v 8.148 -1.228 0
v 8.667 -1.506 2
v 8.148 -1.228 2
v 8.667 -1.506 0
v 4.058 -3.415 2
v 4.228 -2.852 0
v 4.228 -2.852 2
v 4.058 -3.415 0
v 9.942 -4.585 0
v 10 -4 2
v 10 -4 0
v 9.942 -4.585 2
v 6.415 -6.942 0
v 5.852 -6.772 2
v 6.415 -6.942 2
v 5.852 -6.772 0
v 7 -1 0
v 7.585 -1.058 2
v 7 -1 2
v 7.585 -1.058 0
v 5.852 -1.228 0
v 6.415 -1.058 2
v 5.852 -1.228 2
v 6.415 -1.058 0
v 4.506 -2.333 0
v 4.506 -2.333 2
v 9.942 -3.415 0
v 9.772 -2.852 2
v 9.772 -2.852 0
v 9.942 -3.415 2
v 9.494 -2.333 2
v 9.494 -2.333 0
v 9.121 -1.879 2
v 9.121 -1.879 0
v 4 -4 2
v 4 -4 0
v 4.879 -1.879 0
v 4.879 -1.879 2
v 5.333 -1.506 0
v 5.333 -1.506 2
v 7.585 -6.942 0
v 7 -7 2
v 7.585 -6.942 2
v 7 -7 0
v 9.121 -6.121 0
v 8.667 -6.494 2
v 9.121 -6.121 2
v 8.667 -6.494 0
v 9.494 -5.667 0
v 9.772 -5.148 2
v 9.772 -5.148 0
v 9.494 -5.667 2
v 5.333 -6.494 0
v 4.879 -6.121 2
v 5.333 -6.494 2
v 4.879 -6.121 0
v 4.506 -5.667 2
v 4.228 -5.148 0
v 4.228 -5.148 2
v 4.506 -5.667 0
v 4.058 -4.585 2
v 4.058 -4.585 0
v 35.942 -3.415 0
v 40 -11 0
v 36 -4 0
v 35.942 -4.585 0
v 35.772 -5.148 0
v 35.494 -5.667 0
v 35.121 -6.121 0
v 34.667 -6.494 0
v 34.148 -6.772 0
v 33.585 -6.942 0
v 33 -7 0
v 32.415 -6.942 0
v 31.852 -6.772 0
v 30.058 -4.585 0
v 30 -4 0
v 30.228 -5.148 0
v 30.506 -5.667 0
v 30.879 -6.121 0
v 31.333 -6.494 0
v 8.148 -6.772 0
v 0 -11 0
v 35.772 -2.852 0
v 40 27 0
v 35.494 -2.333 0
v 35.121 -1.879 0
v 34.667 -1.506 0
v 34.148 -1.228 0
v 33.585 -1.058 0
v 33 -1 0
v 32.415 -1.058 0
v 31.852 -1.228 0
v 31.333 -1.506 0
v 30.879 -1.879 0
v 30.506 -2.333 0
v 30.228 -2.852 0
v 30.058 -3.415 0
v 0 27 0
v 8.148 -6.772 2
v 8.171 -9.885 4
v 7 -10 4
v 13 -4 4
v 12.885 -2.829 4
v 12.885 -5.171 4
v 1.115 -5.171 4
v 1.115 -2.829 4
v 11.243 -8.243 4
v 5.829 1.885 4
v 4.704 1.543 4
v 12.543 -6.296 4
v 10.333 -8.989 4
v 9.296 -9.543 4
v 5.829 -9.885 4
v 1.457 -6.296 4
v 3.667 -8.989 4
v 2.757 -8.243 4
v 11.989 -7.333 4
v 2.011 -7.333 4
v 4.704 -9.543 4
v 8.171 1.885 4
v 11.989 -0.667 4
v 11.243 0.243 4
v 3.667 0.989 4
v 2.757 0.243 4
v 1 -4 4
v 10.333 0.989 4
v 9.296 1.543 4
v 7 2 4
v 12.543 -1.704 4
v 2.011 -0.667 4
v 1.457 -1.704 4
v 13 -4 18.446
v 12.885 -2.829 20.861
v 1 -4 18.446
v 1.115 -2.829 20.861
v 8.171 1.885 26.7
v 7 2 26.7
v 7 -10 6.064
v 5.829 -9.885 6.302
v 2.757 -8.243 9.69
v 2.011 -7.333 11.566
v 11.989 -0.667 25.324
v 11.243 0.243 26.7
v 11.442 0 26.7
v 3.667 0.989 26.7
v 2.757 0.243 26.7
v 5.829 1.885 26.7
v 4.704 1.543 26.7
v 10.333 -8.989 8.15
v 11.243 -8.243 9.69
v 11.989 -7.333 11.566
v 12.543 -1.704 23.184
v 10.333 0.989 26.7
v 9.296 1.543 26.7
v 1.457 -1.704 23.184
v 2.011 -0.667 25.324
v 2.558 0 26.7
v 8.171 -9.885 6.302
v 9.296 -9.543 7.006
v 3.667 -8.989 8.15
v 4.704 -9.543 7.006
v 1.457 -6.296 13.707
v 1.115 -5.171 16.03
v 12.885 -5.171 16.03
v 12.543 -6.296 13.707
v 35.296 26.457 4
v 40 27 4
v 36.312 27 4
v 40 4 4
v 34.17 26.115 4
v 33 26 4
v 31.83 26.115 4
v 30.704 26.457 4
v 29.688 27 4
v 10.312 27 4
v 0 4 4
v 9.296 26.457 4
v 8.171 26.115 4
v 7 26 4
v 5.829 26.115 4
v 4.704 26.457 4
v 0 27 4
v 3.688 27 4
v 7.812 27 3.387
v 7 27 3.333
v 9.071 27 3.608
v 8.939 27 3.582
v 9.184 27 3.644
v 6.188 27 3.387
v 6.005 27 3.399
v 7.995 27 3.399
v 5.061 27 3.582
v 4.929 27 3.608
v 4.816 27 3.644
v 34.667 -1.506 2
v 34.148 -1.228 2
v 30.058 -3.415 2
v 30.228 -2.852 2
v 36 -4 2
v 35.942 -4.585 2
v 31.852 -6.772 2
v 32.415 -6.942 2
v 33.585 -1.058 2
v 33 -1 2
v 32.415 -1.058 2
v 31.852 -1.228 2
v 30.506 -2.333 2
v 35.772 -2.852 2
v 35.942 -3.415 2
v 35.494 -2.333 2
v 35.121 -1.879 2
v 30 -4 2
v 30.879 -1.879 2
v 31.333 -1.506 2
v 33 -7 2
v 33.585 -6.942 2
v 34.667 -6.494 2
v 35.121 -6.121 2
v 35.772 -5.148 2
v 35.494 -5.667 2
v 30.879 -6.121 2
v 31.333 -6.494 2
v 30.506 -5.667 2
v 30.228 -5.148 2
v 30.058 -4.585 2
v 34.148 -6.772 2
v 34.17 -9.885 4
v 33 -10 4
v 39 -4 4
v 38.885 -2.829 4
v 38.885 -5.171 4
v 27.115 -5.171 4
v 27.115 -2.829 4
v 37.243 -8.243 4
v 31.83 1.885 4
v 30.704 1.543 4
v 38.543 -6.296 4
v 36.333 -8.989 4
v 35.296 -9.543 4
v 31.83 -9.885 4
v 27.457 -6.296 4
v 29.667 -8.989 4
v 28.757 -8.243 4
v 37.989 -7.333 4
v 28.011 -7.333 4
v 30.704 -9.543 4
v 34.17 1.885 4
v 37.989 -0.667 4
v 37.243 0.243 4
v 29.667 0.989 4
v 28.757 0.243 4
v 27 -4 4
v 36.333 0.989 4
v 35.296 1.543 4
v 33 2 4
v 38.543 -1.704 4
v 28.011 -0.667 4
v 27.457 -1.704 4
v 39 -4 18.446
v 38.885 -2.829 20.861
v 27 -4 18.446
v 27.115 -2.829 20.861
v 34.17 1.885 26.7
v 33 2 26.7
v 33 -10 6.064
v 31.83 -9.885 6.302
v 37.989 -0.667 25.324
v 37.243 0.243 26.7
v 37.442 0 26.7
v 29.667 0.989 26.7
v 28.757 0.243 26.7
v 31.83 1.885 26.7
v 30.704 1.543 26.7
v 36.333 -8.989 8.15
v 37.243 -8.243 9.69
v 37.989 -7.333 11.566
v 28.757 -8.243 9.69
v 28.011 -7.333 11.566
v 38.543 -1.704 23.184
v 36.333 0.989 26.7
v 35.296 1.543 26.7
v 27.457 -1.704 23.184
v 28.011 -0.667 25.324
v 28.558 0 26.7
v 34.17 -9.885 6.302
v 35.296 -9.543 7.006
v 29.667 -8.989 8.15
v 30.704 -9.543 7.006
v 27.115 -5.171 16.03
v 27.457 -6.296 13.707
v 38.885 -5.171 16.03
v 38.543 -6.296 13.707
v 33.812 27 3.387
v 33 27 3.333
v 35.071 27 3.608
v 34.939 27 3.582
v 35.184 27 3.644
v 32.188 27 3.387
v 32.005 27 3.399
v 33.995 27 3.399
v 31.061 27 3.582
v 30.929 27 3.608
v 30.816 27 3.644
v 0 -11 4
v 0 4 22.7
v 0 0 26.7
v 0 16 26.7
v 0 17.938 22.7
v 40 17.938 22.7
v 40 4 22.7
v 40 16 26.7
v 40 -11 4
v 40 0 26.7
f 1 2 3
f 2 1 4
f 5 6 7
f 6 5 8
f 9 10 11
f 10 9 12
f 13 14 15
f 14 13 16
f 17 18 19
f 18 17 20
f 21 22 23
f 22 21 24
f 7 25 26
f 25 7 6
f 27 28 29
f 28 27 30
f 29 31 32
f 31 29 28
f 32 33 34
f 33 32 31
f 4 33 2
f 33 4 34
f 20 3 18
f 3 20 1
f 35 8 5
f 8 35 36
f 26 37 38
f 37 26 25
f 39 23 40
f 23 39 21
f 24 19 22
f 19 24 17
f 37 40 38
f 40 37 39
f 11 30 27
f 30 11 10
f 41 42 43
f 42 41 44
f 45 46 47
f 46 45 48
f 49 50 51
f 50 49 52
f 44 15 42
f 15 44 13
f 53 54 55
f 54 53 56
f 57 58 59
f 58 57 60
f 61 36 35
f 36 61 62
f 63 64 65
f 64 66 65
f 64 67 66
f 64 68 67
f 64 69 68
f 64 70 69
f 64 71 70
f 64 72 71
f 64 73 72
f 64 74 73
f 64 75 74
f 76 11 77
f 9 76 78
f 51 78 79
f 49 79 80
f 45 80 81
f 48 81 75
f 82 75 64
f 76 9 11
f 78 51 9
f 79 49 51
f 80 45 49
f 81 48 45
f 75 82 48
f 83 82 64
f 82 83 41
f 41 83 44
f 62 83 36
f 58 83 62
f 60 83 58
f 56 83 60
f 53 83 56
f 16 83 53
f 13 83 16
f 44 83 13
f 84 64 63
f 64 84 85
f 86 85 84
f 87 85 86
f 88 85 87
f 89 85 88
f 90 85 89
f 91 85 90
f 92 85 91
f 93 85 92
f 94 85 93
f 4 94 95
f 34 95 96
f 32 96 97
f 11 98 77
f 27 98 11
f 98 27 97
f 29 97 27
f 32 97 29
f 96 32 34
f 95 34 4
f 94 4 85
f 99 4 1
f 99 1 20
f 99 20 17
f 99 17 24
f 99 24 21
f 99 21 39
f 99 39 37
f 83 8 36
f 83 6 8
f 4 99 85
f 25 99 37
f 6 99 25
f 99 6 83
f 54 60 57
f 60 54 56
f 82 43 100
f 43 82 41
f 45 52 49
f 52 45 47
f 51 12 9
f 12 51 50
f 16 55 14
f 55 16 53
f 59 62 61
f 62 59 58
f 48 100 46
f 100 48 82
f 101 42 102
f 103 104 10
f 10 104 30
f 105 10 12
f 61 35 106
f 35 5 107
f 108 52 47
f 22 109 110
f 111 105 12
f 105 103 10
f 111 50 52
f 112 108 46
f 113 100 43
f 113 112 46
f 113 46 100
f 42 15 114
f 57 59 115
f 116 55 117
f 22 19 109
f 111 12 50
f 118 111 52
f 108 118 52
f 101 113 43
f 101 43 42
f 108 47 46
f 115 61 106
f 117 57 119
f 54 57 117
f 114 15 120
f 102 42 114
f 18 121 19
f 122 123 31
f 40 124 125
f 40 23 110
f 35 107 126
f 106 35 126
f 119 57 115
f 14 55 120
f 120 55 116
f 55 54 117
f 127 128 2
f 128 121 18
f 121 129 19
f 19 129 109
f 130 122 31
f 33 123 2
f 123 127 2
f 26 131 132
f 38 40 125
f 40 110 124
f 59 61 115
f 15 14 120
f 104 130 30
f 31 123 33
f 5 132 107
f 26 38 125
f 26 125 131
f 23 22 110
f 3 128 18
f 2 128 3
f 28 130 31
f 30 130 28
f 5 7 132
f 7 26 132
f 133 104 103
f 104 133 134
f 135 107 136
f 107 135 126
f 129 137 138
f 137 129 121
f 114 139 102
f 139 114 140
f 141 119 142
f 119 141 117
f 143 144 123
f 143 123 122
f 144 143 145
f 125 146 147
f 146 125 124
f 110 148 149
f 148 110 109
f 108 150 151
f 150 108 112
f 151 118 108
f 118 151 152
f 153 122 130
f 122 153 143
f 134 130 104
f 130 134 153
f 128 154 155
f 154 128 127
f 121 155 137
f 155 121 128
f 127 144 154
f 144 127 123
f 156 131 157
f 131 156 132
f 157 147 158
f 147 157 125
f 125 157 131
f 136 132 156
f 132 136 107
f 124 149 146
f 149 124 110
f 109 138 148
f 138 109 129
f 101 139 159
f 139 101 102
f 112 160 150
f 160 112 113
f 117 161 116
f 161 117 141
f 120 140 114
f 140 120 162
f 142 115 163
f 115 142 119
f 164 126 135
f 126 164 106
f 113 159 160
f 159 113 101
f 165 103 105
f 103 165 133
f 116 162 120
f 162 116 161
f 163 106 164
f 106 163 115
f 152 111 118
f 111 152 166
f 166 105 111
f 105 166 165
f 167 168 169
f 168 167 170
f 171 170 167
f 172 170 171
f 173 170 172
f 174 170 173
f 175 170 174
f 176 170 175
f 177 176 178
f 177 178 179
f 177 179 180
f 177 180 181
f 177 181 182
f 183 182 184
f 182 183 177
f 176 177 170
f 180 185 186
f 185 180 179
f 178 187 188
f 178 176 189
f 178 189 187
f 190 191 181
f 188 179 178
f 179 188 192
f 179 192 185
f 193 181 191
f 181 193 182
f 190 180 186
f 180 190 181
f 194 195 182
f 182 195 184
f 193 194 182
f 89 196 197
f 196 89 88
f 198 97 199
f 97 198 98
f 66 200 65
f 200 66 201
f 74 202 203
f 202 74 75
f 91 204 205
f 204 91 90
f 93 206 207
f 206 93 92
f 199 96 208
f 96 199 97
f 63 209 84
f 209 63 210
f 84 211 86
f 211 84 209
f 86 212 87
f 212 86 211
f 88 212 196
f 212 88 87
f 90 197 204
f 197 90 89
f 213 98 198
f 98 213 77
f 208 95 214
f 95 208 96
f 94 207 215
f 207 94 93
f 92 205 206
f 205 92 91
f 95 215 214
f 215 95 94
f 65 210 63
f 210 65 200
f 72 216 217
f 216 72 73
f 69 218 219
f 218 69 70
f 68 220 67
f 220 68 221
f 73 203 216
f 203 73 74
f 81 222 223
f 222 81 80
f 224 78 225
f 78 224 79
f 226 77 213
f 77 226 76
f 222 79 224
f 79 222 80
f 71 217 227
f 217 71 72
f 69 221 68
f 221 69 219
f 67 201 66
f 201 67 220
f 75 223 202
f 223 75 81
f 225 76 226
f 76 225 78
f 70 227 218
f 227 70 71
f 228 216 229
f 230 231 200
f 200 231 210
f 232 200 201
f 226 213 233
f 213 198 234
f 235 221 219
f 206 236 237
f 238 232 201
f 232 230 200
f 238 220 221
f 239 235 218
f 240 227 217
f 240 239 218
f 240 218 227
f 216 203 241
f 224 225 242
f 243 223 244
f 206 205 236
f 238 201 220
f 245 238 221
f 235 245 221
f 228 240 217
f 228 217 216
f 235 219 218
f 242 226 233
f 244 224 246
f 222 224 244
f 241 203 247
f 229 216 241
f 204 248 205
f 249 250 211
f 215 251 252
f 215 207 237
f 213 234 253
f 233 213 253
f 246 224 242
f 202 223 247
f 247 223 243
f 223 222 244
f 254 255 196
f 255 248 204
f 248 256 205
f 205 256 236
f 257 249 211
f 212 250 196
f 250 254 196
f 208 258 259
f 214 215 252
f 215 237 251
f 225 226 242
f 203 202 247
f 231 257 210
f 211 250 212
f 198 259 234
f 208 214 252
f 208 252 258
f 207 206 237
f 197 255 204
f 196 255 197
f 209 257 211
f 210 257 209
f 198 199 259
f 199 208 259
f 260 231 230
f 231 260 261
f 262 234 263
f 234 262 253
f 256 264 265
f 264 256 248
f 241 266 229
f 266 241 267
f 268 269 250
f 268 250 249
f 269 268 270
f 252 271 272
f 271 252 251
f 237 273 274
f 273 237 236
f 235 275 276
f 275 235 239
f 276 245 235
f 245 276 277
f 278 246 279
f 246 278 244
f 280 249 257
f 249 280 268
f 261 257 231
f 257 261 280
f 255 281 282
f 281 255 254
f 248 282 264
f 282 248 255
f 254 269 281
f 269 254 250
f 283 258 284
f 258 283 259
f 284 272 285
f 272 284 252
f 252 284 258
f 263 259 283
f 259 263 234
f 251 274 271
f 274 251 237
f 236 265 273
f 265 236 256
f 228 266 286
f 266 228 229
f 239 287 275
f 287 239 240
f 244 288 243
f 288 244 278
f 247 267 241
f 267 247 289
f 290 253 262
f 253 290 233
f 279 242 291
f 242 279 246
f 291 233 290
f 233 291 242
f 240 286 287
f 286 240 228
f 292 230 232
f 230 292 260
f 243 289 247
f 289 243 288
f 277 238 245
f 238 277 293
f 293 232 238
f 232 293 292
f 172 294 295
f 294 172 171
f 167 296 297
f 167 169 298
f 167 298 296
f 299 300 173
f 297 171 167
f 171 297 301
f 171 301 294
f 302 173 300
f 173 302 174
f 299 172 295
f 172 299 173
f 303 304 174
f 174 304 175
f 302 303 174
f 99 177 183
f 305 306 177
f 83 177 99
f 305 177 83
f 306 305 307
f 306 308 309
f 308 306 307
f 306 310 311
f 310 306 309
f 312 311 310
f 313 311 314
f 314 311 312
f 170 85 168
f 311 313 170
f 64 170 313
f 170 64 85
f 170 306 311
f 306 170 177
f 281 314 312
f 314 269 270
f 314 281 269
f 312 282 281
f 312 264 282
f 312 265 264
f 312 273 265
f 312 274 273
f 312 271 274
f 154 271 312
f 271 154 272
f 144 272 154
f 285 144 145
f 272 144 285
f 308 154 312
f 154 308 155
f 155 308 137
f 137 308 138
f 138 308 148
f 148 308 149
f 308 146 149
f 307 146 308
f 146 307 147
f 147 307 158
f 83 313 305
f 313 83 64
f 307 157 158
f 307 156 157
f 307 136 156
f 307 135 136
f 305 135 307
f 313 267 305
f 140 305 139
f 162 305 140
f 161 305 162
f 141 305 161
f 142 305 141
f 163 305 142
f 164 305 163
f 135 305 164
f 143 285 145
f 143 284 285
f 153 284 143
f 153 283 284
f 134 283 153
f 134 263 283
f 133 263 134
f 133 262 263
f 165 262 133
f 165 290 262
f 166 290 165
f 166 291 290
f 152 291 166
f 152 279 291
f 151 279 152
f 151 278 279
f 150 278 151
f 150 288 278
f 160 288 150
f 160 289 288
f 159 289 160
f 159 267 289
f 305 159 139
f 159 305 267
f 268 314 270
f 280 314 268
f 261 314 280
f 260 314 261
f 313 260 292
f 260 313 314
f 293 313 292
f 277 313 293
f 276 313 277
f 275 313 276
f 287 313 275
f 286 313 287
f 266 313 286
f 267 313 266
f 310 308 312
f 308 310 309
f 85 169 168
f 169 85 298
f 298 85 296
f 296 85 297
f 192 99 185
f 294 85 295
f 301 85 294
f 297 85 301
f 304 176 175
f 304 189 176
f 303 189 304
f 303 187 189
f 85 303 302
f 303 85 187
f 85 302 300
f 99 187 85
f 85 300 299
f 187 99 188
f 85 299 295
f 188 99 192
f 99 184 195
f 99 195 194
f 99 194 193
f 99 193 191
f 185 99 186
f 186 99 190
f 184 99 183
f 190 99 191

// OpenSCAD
$fn=32;

laptop_height       = 18.7;
connector_width     = 8;
connector_length    = 40;
wall                = 4;
screw_diameter      = 3;

connector(connector_length,connector_width,laptop_height,wall,screw_diameter);

module connector(l,w,h,wall,s){
    extra = s+2*wall;
    difference(){
        hull(){
            cube([l,w,h]+[0,2*wall,2*wall]);
            translate([0,-extra,0]) cube([l,w+2*wall+2*extra,wall]);
        }
        union(){
            translate([0,wall,wall]) cube([l,w+extra+wall,h]);
            screw_holes(screw_diameter,wall,connector_width,connector_length);
        }
    }
}

//#screw_holes(screw_diameter,wall,connector_width,connector_length);

module screw_holes(s,wall,w,l){
    
    module screw_hole(s,wall){
        cylinder(wall,s,s);
        translate([0,0,wall/2])
            cylinder(wall/2,s,2*s);
    }
    
    translate([s+wall,-wall,0]){
        screw_hole(s,wall);
        translate([0,0,wall])
            cylinder(laptop_height+2*wall,2*s,2*s);
    }
    
    translate([s+wall,l-2*wall,0]){
        screw_hole(s,wall);
        
    }
    translate([l-s-wall,- wall,0]){
        #screw_hole(s,wall);
        translate([0,0,wall])
            cylinder(laptop_height+2*wall,2*s,2*s);
    }
    
    translate([l-s-wall,l-2*wall,0])
        screw_hole(s,wall);
}
